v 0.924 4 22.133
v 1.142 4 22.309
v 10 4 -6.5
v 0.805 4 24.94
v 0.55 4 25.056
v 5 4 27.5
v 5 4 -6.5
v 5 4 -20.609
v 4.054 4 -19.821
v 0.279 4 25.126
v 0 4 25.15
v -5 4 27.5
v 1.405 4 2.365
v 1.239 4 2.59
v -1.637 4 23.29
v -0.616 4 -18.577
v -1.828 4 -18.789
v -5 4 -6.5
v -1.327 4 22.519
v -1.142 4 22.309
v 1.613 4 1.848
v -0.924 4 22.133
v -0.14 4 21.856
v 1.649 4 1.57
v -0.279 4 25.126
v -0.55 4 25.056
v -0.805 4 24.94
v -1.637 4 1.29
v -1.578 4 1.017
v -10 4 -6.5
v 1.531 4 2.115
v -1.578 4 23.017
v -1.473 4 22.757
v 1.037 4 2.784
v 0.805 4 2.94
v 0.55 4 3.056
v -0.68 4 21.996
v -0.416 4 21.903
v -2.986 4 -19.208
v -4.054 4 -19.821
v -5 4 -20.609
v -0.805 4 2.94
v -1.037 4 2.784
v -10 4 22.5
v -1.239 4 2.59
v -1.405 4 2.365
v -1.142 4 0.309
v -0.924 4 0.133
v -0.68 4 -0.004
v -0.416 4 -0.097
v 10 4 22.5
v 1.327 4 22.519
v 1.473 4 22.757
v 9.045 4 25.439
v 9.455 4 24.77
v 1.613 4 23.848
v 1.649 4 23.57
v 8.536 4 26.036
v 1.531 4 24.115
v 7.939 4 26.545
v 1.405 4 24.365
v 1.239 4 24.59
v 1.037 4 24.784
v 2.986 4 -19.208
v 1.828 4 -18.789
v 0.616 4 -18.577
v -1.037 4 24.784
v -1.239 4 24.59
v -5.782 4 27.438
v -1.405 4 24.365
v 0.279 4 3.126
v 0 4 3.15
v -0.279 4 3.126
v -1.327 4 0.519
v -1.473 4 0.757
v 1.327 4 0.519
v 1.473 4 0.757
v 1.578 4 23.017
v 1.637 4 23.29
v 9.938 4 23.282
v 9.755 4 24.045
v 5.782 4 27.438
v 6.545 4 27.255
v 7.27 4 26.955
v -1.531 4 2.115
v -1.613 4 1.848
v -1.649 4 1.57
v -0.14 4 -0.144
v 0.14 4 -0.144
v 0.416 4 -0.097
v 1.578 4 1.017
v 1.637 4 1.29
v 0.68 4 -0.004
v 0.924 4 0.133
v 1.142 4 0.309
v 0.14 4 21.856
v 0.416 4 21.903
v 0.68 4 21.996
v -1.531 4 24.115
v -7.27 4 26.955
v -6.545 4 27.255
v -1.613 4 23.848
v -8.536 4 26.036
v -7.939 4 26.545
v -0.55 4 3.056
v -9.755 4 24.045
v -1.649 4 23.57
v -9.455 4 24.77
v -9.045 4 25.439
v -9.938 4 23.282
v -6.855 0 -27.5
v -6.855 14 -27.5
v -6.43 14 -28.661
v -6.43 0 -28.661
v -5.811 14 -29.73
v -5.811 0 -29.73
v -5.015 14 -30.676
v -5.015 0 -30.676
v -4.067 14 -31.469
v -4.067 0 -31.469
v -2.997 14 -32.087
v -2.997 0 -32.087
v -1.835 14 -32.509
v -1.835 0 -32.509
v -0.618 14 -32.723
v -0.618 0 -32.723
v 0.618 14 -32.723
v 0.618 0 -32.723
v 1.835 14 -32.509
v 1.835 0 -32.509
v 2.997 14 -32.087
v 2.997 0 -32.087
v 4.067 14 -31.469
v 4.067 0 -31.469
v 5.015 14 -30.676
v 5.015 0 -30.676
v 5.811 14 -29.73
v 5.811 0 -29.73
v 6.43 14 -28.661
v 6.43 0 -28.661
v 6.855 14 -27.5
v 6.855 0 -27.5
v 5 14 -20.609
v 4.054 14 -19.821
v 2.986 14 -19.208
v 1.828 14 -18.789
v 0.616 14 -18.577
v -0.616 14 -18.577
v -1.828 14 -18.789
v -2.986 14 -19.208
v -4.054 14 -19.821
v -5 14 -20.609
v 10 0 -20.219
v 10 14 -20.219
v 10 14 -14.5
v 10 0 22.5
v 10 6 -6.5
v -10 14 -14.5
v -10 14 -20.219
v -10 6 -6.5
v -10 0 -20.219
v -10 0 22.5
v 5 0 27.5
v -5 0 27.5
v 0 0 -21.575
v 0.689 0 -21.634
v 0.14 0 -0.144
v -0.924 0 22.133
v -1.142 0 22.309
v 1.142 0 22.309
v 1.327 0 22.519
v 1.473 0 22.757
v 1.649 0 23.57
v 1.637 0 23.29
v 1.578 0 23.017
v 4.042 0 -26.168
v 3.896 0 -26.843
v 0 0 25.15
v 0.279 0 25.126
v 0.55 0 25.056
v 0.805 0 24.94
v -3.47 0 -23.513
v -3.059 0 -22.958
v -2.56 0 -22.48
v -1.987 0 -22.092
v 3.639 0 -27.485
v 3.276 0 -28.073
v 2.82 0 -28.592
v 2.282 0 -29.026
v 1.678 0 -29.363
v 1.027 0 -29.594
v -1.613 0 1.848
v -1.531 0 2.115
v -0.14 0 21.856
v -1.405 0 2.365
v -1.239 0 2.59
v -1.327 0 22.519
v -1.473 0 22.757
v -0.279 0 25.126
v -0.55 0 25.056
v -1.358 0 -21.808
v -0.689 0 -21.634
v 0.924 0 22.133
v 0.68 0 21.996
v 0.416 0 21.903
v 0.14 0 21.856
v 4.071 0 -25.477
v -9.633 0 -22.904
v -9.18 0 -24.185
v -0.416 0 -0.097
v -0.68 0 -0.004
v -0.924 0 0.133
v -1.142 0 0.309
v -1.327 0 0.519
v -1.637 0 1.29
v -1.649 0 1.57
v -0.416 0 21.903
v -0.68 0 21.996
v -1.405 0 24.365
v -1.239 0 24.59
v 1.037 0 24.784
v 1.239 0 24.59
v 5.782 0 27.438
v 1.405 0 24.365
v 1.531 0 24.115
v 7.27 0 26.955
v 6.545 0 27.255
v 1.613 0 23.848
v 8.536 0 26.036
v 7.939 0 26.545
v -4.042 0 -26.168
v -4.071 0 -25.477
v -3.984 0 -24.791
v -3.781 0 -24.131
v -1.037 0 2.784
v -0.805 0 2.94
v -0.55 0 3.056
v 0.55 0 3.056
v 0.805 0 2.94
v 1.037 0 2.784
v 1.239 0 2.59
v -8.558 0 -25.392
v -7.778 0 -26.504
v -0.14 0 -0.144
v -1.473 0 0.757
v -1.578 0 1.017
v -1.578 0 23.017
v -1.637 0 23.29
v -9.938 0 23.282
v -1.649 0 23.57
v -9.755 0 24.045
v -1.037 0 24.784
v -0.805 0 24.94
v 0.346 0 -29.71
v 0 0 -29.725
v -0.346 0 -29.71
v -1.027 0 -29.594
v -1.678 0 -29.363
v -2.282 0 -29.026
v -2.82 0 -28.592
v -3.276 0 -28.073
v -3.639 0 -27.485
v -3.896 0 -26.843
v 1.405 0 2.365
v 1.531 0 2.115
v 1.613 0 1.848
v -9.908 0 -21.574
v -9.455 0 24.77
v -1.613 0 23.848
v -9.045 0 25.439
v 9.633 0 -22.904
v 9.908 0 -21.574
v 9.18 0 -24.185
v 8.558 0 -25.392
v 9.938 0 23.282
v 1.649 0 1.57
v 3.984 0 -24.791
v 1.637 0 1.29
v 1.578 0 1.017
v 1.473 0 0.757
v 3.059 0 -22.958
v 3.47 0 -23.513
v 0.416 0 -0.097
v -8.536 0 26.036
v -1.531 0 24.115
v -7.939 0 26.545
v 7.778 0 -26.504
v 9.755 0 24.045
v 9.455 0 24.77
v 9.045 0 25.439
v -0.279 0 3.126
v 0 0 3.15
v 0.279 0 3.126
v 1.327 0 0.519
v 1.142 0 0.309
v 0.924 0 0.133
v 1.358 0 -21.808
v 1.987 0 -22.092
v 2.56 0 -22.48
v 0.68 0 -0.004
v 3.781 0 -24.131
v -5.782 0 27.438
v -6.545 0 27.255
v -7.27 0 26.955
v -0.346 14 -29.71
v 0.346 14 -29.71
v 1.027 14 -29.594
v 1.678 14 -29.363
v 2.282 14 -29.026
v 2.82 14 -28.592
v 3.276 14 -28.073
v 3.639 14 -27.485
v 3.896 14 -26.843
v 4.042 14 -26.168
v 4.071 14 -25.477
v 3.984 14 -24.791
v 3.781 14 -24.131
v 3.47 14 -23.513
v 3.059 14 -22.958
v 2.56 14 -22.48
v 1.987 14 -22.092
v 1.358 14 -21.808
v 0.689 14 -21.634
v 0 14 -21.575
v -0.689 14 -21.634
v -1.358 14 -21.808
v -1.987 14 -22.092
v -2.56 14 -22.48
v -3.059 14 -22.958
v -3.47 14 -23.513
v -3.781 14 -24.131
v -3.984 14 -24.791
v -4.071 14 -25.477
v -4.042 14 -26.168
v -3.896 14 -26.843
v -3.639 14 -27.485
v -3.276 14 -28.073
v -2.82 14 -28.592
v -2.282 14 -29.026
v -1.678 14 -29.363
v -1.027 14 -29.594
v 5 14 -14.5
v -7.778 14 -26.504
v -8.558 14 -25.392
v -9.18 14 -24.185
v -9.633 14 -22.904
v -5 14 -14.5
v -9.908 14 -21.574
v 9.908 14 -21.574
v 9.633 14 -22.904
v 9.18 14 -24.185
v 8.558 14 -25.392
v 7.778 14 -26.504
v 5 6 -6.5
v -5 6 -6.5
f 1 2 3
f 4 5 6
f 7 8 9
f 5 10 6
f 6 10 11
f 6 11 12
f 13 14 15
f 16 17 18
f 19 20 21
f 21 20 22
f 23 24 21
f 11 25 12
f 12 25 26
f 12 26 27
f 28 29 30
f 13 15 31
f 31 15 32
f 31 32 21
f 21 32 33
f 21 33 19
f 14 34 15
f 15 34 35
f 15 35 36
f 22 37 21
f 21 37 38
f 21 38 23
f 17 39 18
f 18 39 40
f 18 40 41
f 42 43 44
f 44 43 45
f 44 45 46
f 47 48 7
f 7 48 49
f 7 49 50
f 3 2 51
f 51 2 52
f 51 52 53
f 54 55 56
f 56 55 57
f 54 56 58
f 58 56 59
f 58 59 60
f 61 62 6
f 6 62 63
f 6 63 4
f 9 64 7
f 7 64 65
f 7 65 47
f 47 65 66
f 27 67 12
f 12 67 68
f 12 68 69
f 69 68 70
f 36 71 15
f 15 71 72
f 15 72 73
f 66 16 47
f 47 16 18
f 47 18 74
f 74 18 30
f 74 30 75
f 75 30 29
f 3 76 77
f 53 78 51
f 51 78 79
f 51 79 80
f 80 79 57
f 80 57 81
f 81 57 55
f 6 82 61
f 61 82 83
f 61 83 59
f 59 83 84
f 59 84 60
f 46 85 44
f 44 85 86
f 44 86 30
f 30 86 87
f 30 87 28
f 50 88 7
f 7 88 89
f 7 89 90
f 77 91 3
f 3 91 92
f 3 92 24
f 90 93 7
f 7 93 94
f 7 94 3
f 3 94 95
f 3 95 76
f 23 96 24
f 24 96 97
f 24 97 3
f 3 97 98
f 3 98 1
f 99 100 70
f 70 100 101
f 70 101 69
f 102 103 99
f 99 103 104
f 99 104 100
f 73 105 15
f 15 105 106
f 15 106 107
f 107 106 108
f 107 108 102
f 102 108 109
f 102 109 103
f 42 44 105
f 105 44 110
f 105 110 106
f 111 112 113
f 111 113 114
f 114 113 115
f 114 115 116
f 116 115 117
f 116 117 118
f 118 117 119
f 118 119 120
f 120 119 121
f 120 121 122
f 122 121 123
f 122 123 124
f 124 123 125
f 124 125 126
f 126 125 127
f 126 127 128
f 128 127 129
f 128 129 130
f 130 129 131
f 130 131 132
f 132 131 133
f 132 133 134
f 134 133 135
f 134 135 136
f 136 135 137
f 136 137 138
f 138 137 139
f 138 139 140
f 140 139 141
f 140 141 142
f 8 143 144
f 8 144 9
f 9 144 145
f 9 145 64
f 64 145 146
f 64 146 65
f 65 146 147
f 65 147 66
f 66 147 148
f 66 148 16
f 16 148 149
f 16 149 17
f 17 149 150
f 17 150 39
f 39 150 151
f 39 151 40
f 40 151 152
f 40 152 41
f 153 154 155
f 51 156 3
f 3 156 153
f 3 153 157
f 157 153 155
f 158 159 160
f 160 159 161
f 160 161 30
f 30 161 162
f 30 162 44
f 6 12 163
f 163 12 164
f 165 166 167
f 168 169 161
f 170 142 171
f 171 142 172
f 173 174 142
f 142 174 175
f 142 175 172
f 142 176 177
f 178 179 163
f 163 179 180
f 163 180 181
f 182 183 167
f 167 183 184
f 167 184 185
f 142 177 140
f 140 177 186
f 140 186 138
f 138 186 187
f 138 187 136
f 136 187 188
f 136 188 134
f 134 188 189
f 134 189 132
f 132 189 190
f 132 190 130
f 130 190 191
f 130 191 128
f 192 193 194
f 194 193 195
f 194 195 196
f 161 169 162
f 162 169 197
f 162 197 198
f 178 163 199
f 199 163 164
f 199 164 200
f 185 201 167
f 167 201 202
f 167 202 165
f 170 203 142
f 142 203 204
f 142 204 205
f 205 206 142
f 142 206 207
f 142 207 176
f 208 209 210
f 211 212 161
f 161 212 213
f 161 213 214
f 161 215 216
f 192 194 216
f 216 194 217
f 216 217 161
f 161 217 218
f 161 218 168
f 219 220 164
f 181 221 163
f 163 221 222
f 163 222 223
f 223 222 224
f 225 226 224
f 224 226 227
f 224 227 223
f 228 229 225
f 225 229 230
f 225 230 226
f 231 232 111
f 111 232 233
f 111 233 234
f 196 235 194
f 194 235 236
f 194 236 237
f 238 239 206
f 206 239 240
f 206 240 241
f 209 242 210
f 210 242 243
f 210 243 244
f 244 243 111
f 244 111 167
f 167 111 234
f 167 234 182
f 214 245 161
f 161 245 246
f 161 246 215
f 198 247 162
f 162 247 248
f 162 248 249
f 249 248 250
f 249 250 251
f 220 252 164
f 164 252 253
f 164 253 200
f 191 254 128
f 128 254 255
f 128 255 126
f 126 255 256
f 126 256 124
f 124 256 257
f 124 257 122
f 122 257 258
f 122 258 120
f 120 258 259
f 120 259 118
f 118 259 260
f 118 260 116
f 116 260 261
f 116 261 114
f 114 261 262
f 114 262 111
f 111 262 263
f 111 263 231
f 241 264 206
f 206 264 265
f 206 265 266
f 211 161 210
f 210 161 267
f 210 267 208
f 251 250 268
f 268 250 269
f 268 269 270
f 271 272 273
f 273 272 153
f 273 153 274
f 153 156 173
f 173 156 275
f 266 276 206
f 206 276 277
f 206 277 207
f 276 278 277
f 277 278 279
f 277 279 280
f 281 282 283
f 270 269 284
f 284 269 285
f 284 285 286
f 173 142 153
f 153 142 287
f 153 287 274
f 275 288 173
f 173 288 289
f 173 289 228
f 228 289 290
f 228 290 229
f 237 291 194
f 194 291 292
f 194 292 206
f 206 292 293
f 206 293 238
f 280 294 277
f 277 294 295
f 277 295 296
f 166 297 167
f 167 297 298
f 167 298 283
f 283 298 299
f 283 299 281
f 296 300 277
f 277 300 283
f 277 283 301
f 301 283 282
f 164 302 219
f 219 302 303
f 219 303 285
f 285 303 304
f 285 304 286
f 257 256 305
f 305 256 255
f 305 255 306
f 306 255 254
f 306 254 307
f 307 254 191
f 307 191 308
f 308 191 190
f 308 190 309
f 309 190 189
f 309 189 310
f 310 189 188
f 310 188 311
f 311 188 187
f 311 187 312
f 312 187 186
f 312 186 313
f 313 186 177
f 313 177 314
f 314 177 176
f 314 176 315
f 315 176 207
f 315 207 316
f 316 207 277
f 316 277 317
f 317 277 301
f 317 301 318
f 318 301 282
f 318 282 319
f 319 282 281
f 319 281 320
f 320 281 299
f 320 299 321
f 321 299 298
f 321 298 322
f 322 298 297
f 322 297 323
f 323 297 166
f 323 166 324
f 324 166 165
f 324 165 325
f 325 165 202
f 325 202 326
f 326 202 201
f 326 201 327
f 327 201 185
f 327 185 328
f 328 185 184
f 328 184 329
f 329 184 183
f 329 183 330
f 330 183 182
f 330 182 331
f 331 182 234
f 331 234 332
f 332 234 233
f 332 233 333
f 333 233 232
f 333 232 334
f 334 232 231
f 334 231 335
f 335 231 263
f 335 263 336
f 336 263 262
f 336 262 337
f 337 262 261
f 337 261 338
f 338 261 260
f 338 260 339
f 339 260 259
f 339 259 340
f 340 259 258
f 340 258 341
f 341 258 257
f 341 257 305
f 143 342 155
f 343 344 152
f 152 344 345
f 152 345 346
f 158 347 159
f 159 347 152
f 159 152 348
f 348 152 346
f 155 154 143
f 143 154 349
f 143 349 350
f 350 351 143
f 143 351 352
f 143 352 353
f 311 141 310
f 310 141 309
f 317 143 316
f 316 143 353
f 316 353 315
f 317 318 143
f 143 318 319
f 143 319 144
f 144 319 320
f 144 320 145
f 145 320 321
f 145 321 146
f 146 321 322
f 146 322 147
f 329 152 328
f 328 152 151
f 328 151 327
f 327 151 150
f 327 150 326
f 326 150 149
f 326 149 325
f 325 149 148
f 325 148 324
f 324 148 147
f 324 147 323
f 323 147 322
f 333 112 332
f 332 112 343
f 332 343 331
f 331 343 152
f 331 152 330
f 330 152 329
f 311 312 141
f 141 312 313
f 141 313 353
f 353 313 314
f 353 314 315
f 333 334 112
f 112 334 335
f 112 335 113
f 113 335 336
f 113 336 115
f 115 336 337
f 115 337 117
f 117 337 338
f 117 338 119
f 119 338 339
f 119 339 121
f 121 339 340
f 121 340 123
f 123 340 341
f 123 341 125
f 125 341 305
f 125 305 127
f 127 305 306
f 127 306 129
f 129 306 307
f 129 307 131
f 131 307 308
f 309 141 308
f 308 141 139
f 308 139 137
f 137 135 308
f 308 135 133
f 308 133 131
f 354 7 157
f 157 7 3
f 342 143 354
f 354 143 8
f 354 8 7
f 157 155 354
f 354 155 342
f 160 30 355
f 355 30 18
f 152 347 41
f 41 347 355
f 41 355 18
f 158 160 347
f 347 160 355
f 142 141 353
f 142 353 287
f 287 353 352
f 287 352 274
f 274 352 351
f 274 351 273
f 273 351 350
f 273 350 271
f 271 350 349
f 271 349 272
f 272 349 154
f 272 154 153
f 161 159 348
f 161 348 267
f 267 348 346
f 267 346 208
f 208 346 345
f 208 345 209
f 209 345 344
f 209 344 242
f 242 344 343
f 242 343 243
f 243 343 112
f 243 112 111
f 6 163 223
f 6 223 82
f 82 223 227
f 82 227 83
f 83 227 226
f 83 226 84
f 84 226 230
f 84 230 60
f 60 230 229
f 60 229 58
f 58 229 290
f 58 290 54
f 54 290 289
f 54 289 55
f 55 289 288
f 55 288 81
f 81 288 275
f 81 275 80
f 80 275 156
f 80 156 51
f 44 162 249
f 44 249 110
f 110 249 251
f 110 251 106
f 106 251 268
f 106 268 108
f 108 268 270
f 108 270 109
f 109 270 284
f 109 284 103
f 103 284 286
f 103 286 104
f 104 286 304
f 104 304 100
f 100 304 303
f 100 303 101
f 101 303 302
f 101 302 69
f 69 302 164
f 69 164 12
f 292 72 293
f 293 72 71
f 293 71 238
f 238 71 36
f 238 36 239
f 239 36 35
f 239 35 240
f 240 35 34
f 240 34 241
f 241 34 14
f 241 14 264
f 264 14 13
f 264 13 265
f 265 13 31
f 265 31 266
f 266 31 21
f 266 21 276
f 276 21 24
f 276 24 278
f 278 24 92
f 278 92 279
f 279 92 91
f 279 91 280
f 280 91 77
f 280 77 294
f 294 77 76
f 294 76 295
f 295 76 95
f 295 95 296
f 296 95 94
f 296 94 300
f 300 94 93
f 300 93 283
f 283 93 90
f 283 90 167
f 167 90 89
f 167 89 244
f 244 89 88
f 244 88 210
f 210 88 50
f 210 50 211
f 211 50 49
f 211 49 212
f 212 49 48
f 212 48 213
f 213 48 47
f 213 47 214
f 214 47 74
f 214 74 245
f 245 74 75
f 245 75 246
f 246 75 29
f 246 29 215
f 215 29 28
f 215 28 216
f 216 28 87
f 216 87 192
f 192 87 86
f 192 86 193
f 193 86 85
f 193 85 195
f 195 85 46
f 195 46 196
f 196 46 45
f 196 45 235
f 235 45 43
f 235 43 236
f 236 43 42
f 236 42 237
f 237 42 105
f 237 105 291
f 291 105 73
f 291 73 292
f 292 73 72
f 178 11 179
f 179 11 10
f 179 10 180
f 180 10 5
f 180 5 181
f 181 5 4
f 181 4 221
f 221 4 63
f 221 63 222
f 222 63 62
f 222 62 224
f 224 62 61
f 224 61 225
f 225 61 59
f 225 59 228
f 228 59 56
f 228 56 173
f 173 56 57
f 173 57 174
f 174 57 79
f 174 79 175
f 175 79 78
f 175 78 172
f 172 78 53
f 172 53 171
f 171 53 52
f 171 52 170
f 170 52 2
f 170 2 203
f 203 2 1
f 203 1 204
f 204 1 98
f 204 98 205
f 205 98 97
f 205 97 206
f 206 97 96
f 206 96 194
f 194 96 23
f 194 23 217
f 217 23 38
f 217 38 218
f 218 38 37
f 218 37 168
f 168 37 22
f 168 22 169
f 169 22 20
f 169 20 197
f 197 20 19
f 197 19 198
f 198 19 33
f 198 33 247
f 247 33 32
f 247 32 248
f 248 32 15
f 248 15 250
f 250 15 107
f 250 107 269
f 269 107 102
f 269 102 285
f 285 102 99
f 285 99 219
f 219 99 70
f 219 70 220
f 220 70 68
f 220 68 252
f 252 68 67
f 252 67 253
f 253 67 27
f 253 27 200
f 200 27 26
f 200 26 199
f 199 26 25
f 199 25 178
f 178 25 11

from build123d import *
from build123d.topology import SkipClean

# Parameters (mm, degrees)
SKETCH1_W                       = 20
SKETCH1_H                       = 55
BOSS_EXTRUDE1_DEPTH             = 4
CUT_EXTRUDE1_DEPTH              = 30.533878851
CUT_EXTRUDE1_DEPTH_BACK         = 30.533878851
SKETCH2_R                       = 4.075
SKETCH3_R                       = 7.1
SKETCH3_R_2                     = 4.075
BOSS_EXTRUDE2_DEPTH             = 10
BOSS_EXTRUDE2_DIRECTION_2_REACH = 31.534
SKETCH4_W                       = 21
SKETCH4_H                       = 14
BOSS_EXTRUDE3_DEPTH             = 5
CHAMFER1_SIZE                   = 8
CHAMFER1_OF_MIRROR1_SIZE        = 8
FILLET3_R                       = 10
FILLET4_R                       = 5
SKETCH5_R                       = 1.65
CUT_EXTRUDE2_DEPTH              = 36.672993987


with BuildPart() as part:
    # Sketch1 → Boss-Extrude1 (new body)
    with BuildSketch(Plane(origin=(0, 0, 0), x_dir=(1, 0, 0), z_dir=(0, 1, 0))):
        Rectangle(SKETCH1_W, SKETCH1_H)
    extrude(amount=BOSS_EXTRUDE1_DEPTH)

    # Sketch2 → Cut-Extrude1 (cut, two sides: drawn at the far end of the back side and taken through both)
    with BuildSketch(Plane(origin=(0, 4, 0), x_dir=(1, 0, 0), z_dir=(0, 1, 0)).offset(-CUT_EXTRUDE1_DEPTH_BACK)):
        with Locations((0, 25.65)):
            Circle(SKETCH2_R)
    extrude(amount=CUT_EXTRUDE1_DEPTH + CUT_EXTRUDE1_DEPTH_BACK, mode=Mode.SUBTRACT)

    # Sketch3 → Boss-Extrude2 (add)
    with BuildSketch(Plane(origin=(0, 4, 0), x_dir=(1, 0, 0), z_dir=(0, 1, 0))):
        with Locations(Location((0, 25.65, 0), (0, 0, 270))):
            Circle(SKETCH3_R)
        with Locations(Location((0, 25.65, 0), (0, 0, 270))):
            Circle(SKETCH3_R_2, mode=Mode.SUBTRACT)
    extrude(amount=BOSS_EXTRUDE2_DEPTH)

    # Boss-Extrude2 direction 2: up to this face of the body (flat: up to its plane)
    boss_extrude2_direction_2_end = Plane(part.part.faces().sort_by_distance((0, 0, 0.953538914))[0])
    # Sketch3 → Boss-Extrude2 direction 2 (add, up to the picked face)
    with BuildSketch(Plane(origin=(0, 4, 0), x_dir=(1, 0, 0), z_dir=(0, 1, 0)), mode=Mode.PRIVATE) as boss_extrude2_direction_2_sk1:
        with Locations(Location((0, 25.65, 0), (0, 0, 270))):
            Circle(SKETCH3_R)
        with Locations(Location((0, 25.65, 0), (0, 0, 270))):
            Circle(SKETCH3_R_2, mode=Mode.SUBTRACT)
    boss_extrude2_direction_2_tool1 = split(extrude(boss_extrude2_direction_2_sk1.sketch, amount=-BOSS_EXTRUDE2_DIRECTION_2_REACH, mode=Mode.PRIVATE), bisect_by=boss_extrude2_direction_2_end, keep=Keep.BOTH, mode=Mode.PRIVATE)
    add(boss_extrude2_direction_2_tool1.solids().sort_by(Axis((0, 4, -32.549182), (0, -1, 0)))[0])

    # Sketch4 → Boss-Extrude3 (add)
    with BuildSketch(Plane(origin=(10, 0, 0), x_dir=(0, 0, -1), z_dir=(1, 0, 0))):
        with Locations((17, 7)):
            Rectangle(SKETCH4_W, SKETCH4_H)
    boss_extrude3 = extrude(amount=-BOSS_EXTRUDE3_DEPTH)

    # Chamfer1
    chamfer1_edges = [part.edges().sort_by_distance(p)[0] for p in [
        (7.5, 14, -6.5),
    ]]
    chamfer(chamfer1_edges, length=CHAMFER1_SIZE)

    # Mirror1: Boss-Extrude3 across plane
    with SkipClean():  # the faces are left unmerged after this step: merging them gives an invalid solid
        add(boss_extrude3.mirror(Plane(origin=(0, 0, 0), x_dir=(0, 0, 1), z_dir=(1, 0, 0))))

    # Chamfer1 of Mirror1
    chamfer1_of_mirror1_edges = [part.edges().sort_by_distance(p)[0] for p in [
        (-7.5, 14, -6.5),
    ]]
    chamfer(chamfer1_of_mirror1_edges, length=CHAMFER1_OF_MIRROR1_SIZE)

    # Fillet3
    # the kernel refuses this fillet: 10 mm, written as the material it takes off along each edge
    with BuildSketch(Plane(origin=(10, 32.202420855, -27.5), x_dir=(0, 0, 1), z_dir=(0, -1, 0))) as fillet3_piece_1:
        with BuildLine():
            CenterArc((7.280968342, 10), FILLET3_R, 223.272918663, 46.727081337)
            Line((0, 3.145257116), (-0.145619367, 3.008162259))
            ThreePointArc((-0.145619367, 3.008162259), (-0.2, 1.572628558), (-0.2, 0))
            Line((-0.2, 0), (0, -0.2))
            Line((0, -0.2), (7.280968342, -0.2))
            Line((7.280968342, -0.2), (7.280968342, 0))
        make_face()
    extrude(amount=28.202420855, mode=Mode.SUBTRACT)
    with BuildSketch(Plane(origin=(-10, 32.202420855, -27.5), x_dir=(0, 0, 1), z_dir=(0, -1, 0))) as fillet3_piece_2:
        with BuildLine():
            CenterArc((7.280968342, -10), FILLET3_R, 90, 46.727081337)
            Line((0, -3.145257116), (-0.145619367, -3.008162259))
            ThreePointArc((-0.145619367, -3.008162259), (-0.2, -1.572628558), (-0.2, 0))
            Line((-0.2, 0), (0, 0.2))
            Line((0, 0.2), (7.280968342, 0.2))
            Line((7.280968342, 0.2), (7.280968342, 0))
        make_face()
    extrude(amount=28.202420855, mode=Mode.SUBTRACT)
    with BuildSketch(Plane(origin=(-10, -18.202420855, -27.5), x_dir=(0, 0, 1), z_dir=(0, 1, 0))) as fillet3_piece_3:
        with BuildLine():
            CenterArc((7.280968342, 10), FILLET3_R, 223.272918663, 46.727081337)
            Line((0, 3.145257116), (-0.145619367, 3.008162259))
            ThreePointArc((-0.145619367, 3.008162259), (-0.2, 1.572628558), (-0.2, 0))
            Line((-0.2, 0), (0, -0.2))
            Line((0, -0.2), (7.280968342, -0.2))
            Line((7.280968342, -0.2), (7.280968342, 0))
        make_face()
    extrude(amount=22.202420855, mode=Mode.SUBTRACT)
    with BuildSketch(Plane(origin=(10, -18.202420855, -27.5), x_dir=(0, 0, 1), z_dir=(0, 1, 0))) as fillet3_piece_4:
        with BuildLine():
            CenterArc((7.280968342, -10), FILLET3_R, 90, 46.727081337)
            Line((0, -3.145257116), (-0.145619367, -3.008162259))
            ThreePointArc((-0.145619367, -3.008162259), (-0.2, -1.572628558), (-0.2, 0))
            Line((-0.2, 0), (0, 0.2))
            Line((0, 0.2), (7.280968342, 0.2))
            Line((7.280968342, 0.2), (7.280968342, 0))
        make_face()
    extrude(amount=22.202420855, mode=Mode.SUBTRACT)

    # Fillet4
    fillet4_edges = [part.edges().sort_by_distance(p)[0] for p in [
        (10, 2, 27.5),
        (-10, 2, 27.5),
    ]]
    fillet(fillet4_edges, radius=FILLET4_R)

    # Sketch5 → Cut-Extrude2 (cut, through all)
    with BuildSketch(Plane(origin=(0, 4, 0), x_dir=(1, 0, 0), z_dir=(0, 1, 0))):
        with Locations(Location((0, -23.5, 0), (0, 0, 270))):
            Circle(SKETCH5_R)
        with Locations(Location((0, -1.5, 0), (0, 0, 270))):
            Circle(SKETCH5_R)
    extrude(amount=-CUT_EXTRUDE2_DEPTH, mode=Mode.SUBTRACT)


solid = part.part
